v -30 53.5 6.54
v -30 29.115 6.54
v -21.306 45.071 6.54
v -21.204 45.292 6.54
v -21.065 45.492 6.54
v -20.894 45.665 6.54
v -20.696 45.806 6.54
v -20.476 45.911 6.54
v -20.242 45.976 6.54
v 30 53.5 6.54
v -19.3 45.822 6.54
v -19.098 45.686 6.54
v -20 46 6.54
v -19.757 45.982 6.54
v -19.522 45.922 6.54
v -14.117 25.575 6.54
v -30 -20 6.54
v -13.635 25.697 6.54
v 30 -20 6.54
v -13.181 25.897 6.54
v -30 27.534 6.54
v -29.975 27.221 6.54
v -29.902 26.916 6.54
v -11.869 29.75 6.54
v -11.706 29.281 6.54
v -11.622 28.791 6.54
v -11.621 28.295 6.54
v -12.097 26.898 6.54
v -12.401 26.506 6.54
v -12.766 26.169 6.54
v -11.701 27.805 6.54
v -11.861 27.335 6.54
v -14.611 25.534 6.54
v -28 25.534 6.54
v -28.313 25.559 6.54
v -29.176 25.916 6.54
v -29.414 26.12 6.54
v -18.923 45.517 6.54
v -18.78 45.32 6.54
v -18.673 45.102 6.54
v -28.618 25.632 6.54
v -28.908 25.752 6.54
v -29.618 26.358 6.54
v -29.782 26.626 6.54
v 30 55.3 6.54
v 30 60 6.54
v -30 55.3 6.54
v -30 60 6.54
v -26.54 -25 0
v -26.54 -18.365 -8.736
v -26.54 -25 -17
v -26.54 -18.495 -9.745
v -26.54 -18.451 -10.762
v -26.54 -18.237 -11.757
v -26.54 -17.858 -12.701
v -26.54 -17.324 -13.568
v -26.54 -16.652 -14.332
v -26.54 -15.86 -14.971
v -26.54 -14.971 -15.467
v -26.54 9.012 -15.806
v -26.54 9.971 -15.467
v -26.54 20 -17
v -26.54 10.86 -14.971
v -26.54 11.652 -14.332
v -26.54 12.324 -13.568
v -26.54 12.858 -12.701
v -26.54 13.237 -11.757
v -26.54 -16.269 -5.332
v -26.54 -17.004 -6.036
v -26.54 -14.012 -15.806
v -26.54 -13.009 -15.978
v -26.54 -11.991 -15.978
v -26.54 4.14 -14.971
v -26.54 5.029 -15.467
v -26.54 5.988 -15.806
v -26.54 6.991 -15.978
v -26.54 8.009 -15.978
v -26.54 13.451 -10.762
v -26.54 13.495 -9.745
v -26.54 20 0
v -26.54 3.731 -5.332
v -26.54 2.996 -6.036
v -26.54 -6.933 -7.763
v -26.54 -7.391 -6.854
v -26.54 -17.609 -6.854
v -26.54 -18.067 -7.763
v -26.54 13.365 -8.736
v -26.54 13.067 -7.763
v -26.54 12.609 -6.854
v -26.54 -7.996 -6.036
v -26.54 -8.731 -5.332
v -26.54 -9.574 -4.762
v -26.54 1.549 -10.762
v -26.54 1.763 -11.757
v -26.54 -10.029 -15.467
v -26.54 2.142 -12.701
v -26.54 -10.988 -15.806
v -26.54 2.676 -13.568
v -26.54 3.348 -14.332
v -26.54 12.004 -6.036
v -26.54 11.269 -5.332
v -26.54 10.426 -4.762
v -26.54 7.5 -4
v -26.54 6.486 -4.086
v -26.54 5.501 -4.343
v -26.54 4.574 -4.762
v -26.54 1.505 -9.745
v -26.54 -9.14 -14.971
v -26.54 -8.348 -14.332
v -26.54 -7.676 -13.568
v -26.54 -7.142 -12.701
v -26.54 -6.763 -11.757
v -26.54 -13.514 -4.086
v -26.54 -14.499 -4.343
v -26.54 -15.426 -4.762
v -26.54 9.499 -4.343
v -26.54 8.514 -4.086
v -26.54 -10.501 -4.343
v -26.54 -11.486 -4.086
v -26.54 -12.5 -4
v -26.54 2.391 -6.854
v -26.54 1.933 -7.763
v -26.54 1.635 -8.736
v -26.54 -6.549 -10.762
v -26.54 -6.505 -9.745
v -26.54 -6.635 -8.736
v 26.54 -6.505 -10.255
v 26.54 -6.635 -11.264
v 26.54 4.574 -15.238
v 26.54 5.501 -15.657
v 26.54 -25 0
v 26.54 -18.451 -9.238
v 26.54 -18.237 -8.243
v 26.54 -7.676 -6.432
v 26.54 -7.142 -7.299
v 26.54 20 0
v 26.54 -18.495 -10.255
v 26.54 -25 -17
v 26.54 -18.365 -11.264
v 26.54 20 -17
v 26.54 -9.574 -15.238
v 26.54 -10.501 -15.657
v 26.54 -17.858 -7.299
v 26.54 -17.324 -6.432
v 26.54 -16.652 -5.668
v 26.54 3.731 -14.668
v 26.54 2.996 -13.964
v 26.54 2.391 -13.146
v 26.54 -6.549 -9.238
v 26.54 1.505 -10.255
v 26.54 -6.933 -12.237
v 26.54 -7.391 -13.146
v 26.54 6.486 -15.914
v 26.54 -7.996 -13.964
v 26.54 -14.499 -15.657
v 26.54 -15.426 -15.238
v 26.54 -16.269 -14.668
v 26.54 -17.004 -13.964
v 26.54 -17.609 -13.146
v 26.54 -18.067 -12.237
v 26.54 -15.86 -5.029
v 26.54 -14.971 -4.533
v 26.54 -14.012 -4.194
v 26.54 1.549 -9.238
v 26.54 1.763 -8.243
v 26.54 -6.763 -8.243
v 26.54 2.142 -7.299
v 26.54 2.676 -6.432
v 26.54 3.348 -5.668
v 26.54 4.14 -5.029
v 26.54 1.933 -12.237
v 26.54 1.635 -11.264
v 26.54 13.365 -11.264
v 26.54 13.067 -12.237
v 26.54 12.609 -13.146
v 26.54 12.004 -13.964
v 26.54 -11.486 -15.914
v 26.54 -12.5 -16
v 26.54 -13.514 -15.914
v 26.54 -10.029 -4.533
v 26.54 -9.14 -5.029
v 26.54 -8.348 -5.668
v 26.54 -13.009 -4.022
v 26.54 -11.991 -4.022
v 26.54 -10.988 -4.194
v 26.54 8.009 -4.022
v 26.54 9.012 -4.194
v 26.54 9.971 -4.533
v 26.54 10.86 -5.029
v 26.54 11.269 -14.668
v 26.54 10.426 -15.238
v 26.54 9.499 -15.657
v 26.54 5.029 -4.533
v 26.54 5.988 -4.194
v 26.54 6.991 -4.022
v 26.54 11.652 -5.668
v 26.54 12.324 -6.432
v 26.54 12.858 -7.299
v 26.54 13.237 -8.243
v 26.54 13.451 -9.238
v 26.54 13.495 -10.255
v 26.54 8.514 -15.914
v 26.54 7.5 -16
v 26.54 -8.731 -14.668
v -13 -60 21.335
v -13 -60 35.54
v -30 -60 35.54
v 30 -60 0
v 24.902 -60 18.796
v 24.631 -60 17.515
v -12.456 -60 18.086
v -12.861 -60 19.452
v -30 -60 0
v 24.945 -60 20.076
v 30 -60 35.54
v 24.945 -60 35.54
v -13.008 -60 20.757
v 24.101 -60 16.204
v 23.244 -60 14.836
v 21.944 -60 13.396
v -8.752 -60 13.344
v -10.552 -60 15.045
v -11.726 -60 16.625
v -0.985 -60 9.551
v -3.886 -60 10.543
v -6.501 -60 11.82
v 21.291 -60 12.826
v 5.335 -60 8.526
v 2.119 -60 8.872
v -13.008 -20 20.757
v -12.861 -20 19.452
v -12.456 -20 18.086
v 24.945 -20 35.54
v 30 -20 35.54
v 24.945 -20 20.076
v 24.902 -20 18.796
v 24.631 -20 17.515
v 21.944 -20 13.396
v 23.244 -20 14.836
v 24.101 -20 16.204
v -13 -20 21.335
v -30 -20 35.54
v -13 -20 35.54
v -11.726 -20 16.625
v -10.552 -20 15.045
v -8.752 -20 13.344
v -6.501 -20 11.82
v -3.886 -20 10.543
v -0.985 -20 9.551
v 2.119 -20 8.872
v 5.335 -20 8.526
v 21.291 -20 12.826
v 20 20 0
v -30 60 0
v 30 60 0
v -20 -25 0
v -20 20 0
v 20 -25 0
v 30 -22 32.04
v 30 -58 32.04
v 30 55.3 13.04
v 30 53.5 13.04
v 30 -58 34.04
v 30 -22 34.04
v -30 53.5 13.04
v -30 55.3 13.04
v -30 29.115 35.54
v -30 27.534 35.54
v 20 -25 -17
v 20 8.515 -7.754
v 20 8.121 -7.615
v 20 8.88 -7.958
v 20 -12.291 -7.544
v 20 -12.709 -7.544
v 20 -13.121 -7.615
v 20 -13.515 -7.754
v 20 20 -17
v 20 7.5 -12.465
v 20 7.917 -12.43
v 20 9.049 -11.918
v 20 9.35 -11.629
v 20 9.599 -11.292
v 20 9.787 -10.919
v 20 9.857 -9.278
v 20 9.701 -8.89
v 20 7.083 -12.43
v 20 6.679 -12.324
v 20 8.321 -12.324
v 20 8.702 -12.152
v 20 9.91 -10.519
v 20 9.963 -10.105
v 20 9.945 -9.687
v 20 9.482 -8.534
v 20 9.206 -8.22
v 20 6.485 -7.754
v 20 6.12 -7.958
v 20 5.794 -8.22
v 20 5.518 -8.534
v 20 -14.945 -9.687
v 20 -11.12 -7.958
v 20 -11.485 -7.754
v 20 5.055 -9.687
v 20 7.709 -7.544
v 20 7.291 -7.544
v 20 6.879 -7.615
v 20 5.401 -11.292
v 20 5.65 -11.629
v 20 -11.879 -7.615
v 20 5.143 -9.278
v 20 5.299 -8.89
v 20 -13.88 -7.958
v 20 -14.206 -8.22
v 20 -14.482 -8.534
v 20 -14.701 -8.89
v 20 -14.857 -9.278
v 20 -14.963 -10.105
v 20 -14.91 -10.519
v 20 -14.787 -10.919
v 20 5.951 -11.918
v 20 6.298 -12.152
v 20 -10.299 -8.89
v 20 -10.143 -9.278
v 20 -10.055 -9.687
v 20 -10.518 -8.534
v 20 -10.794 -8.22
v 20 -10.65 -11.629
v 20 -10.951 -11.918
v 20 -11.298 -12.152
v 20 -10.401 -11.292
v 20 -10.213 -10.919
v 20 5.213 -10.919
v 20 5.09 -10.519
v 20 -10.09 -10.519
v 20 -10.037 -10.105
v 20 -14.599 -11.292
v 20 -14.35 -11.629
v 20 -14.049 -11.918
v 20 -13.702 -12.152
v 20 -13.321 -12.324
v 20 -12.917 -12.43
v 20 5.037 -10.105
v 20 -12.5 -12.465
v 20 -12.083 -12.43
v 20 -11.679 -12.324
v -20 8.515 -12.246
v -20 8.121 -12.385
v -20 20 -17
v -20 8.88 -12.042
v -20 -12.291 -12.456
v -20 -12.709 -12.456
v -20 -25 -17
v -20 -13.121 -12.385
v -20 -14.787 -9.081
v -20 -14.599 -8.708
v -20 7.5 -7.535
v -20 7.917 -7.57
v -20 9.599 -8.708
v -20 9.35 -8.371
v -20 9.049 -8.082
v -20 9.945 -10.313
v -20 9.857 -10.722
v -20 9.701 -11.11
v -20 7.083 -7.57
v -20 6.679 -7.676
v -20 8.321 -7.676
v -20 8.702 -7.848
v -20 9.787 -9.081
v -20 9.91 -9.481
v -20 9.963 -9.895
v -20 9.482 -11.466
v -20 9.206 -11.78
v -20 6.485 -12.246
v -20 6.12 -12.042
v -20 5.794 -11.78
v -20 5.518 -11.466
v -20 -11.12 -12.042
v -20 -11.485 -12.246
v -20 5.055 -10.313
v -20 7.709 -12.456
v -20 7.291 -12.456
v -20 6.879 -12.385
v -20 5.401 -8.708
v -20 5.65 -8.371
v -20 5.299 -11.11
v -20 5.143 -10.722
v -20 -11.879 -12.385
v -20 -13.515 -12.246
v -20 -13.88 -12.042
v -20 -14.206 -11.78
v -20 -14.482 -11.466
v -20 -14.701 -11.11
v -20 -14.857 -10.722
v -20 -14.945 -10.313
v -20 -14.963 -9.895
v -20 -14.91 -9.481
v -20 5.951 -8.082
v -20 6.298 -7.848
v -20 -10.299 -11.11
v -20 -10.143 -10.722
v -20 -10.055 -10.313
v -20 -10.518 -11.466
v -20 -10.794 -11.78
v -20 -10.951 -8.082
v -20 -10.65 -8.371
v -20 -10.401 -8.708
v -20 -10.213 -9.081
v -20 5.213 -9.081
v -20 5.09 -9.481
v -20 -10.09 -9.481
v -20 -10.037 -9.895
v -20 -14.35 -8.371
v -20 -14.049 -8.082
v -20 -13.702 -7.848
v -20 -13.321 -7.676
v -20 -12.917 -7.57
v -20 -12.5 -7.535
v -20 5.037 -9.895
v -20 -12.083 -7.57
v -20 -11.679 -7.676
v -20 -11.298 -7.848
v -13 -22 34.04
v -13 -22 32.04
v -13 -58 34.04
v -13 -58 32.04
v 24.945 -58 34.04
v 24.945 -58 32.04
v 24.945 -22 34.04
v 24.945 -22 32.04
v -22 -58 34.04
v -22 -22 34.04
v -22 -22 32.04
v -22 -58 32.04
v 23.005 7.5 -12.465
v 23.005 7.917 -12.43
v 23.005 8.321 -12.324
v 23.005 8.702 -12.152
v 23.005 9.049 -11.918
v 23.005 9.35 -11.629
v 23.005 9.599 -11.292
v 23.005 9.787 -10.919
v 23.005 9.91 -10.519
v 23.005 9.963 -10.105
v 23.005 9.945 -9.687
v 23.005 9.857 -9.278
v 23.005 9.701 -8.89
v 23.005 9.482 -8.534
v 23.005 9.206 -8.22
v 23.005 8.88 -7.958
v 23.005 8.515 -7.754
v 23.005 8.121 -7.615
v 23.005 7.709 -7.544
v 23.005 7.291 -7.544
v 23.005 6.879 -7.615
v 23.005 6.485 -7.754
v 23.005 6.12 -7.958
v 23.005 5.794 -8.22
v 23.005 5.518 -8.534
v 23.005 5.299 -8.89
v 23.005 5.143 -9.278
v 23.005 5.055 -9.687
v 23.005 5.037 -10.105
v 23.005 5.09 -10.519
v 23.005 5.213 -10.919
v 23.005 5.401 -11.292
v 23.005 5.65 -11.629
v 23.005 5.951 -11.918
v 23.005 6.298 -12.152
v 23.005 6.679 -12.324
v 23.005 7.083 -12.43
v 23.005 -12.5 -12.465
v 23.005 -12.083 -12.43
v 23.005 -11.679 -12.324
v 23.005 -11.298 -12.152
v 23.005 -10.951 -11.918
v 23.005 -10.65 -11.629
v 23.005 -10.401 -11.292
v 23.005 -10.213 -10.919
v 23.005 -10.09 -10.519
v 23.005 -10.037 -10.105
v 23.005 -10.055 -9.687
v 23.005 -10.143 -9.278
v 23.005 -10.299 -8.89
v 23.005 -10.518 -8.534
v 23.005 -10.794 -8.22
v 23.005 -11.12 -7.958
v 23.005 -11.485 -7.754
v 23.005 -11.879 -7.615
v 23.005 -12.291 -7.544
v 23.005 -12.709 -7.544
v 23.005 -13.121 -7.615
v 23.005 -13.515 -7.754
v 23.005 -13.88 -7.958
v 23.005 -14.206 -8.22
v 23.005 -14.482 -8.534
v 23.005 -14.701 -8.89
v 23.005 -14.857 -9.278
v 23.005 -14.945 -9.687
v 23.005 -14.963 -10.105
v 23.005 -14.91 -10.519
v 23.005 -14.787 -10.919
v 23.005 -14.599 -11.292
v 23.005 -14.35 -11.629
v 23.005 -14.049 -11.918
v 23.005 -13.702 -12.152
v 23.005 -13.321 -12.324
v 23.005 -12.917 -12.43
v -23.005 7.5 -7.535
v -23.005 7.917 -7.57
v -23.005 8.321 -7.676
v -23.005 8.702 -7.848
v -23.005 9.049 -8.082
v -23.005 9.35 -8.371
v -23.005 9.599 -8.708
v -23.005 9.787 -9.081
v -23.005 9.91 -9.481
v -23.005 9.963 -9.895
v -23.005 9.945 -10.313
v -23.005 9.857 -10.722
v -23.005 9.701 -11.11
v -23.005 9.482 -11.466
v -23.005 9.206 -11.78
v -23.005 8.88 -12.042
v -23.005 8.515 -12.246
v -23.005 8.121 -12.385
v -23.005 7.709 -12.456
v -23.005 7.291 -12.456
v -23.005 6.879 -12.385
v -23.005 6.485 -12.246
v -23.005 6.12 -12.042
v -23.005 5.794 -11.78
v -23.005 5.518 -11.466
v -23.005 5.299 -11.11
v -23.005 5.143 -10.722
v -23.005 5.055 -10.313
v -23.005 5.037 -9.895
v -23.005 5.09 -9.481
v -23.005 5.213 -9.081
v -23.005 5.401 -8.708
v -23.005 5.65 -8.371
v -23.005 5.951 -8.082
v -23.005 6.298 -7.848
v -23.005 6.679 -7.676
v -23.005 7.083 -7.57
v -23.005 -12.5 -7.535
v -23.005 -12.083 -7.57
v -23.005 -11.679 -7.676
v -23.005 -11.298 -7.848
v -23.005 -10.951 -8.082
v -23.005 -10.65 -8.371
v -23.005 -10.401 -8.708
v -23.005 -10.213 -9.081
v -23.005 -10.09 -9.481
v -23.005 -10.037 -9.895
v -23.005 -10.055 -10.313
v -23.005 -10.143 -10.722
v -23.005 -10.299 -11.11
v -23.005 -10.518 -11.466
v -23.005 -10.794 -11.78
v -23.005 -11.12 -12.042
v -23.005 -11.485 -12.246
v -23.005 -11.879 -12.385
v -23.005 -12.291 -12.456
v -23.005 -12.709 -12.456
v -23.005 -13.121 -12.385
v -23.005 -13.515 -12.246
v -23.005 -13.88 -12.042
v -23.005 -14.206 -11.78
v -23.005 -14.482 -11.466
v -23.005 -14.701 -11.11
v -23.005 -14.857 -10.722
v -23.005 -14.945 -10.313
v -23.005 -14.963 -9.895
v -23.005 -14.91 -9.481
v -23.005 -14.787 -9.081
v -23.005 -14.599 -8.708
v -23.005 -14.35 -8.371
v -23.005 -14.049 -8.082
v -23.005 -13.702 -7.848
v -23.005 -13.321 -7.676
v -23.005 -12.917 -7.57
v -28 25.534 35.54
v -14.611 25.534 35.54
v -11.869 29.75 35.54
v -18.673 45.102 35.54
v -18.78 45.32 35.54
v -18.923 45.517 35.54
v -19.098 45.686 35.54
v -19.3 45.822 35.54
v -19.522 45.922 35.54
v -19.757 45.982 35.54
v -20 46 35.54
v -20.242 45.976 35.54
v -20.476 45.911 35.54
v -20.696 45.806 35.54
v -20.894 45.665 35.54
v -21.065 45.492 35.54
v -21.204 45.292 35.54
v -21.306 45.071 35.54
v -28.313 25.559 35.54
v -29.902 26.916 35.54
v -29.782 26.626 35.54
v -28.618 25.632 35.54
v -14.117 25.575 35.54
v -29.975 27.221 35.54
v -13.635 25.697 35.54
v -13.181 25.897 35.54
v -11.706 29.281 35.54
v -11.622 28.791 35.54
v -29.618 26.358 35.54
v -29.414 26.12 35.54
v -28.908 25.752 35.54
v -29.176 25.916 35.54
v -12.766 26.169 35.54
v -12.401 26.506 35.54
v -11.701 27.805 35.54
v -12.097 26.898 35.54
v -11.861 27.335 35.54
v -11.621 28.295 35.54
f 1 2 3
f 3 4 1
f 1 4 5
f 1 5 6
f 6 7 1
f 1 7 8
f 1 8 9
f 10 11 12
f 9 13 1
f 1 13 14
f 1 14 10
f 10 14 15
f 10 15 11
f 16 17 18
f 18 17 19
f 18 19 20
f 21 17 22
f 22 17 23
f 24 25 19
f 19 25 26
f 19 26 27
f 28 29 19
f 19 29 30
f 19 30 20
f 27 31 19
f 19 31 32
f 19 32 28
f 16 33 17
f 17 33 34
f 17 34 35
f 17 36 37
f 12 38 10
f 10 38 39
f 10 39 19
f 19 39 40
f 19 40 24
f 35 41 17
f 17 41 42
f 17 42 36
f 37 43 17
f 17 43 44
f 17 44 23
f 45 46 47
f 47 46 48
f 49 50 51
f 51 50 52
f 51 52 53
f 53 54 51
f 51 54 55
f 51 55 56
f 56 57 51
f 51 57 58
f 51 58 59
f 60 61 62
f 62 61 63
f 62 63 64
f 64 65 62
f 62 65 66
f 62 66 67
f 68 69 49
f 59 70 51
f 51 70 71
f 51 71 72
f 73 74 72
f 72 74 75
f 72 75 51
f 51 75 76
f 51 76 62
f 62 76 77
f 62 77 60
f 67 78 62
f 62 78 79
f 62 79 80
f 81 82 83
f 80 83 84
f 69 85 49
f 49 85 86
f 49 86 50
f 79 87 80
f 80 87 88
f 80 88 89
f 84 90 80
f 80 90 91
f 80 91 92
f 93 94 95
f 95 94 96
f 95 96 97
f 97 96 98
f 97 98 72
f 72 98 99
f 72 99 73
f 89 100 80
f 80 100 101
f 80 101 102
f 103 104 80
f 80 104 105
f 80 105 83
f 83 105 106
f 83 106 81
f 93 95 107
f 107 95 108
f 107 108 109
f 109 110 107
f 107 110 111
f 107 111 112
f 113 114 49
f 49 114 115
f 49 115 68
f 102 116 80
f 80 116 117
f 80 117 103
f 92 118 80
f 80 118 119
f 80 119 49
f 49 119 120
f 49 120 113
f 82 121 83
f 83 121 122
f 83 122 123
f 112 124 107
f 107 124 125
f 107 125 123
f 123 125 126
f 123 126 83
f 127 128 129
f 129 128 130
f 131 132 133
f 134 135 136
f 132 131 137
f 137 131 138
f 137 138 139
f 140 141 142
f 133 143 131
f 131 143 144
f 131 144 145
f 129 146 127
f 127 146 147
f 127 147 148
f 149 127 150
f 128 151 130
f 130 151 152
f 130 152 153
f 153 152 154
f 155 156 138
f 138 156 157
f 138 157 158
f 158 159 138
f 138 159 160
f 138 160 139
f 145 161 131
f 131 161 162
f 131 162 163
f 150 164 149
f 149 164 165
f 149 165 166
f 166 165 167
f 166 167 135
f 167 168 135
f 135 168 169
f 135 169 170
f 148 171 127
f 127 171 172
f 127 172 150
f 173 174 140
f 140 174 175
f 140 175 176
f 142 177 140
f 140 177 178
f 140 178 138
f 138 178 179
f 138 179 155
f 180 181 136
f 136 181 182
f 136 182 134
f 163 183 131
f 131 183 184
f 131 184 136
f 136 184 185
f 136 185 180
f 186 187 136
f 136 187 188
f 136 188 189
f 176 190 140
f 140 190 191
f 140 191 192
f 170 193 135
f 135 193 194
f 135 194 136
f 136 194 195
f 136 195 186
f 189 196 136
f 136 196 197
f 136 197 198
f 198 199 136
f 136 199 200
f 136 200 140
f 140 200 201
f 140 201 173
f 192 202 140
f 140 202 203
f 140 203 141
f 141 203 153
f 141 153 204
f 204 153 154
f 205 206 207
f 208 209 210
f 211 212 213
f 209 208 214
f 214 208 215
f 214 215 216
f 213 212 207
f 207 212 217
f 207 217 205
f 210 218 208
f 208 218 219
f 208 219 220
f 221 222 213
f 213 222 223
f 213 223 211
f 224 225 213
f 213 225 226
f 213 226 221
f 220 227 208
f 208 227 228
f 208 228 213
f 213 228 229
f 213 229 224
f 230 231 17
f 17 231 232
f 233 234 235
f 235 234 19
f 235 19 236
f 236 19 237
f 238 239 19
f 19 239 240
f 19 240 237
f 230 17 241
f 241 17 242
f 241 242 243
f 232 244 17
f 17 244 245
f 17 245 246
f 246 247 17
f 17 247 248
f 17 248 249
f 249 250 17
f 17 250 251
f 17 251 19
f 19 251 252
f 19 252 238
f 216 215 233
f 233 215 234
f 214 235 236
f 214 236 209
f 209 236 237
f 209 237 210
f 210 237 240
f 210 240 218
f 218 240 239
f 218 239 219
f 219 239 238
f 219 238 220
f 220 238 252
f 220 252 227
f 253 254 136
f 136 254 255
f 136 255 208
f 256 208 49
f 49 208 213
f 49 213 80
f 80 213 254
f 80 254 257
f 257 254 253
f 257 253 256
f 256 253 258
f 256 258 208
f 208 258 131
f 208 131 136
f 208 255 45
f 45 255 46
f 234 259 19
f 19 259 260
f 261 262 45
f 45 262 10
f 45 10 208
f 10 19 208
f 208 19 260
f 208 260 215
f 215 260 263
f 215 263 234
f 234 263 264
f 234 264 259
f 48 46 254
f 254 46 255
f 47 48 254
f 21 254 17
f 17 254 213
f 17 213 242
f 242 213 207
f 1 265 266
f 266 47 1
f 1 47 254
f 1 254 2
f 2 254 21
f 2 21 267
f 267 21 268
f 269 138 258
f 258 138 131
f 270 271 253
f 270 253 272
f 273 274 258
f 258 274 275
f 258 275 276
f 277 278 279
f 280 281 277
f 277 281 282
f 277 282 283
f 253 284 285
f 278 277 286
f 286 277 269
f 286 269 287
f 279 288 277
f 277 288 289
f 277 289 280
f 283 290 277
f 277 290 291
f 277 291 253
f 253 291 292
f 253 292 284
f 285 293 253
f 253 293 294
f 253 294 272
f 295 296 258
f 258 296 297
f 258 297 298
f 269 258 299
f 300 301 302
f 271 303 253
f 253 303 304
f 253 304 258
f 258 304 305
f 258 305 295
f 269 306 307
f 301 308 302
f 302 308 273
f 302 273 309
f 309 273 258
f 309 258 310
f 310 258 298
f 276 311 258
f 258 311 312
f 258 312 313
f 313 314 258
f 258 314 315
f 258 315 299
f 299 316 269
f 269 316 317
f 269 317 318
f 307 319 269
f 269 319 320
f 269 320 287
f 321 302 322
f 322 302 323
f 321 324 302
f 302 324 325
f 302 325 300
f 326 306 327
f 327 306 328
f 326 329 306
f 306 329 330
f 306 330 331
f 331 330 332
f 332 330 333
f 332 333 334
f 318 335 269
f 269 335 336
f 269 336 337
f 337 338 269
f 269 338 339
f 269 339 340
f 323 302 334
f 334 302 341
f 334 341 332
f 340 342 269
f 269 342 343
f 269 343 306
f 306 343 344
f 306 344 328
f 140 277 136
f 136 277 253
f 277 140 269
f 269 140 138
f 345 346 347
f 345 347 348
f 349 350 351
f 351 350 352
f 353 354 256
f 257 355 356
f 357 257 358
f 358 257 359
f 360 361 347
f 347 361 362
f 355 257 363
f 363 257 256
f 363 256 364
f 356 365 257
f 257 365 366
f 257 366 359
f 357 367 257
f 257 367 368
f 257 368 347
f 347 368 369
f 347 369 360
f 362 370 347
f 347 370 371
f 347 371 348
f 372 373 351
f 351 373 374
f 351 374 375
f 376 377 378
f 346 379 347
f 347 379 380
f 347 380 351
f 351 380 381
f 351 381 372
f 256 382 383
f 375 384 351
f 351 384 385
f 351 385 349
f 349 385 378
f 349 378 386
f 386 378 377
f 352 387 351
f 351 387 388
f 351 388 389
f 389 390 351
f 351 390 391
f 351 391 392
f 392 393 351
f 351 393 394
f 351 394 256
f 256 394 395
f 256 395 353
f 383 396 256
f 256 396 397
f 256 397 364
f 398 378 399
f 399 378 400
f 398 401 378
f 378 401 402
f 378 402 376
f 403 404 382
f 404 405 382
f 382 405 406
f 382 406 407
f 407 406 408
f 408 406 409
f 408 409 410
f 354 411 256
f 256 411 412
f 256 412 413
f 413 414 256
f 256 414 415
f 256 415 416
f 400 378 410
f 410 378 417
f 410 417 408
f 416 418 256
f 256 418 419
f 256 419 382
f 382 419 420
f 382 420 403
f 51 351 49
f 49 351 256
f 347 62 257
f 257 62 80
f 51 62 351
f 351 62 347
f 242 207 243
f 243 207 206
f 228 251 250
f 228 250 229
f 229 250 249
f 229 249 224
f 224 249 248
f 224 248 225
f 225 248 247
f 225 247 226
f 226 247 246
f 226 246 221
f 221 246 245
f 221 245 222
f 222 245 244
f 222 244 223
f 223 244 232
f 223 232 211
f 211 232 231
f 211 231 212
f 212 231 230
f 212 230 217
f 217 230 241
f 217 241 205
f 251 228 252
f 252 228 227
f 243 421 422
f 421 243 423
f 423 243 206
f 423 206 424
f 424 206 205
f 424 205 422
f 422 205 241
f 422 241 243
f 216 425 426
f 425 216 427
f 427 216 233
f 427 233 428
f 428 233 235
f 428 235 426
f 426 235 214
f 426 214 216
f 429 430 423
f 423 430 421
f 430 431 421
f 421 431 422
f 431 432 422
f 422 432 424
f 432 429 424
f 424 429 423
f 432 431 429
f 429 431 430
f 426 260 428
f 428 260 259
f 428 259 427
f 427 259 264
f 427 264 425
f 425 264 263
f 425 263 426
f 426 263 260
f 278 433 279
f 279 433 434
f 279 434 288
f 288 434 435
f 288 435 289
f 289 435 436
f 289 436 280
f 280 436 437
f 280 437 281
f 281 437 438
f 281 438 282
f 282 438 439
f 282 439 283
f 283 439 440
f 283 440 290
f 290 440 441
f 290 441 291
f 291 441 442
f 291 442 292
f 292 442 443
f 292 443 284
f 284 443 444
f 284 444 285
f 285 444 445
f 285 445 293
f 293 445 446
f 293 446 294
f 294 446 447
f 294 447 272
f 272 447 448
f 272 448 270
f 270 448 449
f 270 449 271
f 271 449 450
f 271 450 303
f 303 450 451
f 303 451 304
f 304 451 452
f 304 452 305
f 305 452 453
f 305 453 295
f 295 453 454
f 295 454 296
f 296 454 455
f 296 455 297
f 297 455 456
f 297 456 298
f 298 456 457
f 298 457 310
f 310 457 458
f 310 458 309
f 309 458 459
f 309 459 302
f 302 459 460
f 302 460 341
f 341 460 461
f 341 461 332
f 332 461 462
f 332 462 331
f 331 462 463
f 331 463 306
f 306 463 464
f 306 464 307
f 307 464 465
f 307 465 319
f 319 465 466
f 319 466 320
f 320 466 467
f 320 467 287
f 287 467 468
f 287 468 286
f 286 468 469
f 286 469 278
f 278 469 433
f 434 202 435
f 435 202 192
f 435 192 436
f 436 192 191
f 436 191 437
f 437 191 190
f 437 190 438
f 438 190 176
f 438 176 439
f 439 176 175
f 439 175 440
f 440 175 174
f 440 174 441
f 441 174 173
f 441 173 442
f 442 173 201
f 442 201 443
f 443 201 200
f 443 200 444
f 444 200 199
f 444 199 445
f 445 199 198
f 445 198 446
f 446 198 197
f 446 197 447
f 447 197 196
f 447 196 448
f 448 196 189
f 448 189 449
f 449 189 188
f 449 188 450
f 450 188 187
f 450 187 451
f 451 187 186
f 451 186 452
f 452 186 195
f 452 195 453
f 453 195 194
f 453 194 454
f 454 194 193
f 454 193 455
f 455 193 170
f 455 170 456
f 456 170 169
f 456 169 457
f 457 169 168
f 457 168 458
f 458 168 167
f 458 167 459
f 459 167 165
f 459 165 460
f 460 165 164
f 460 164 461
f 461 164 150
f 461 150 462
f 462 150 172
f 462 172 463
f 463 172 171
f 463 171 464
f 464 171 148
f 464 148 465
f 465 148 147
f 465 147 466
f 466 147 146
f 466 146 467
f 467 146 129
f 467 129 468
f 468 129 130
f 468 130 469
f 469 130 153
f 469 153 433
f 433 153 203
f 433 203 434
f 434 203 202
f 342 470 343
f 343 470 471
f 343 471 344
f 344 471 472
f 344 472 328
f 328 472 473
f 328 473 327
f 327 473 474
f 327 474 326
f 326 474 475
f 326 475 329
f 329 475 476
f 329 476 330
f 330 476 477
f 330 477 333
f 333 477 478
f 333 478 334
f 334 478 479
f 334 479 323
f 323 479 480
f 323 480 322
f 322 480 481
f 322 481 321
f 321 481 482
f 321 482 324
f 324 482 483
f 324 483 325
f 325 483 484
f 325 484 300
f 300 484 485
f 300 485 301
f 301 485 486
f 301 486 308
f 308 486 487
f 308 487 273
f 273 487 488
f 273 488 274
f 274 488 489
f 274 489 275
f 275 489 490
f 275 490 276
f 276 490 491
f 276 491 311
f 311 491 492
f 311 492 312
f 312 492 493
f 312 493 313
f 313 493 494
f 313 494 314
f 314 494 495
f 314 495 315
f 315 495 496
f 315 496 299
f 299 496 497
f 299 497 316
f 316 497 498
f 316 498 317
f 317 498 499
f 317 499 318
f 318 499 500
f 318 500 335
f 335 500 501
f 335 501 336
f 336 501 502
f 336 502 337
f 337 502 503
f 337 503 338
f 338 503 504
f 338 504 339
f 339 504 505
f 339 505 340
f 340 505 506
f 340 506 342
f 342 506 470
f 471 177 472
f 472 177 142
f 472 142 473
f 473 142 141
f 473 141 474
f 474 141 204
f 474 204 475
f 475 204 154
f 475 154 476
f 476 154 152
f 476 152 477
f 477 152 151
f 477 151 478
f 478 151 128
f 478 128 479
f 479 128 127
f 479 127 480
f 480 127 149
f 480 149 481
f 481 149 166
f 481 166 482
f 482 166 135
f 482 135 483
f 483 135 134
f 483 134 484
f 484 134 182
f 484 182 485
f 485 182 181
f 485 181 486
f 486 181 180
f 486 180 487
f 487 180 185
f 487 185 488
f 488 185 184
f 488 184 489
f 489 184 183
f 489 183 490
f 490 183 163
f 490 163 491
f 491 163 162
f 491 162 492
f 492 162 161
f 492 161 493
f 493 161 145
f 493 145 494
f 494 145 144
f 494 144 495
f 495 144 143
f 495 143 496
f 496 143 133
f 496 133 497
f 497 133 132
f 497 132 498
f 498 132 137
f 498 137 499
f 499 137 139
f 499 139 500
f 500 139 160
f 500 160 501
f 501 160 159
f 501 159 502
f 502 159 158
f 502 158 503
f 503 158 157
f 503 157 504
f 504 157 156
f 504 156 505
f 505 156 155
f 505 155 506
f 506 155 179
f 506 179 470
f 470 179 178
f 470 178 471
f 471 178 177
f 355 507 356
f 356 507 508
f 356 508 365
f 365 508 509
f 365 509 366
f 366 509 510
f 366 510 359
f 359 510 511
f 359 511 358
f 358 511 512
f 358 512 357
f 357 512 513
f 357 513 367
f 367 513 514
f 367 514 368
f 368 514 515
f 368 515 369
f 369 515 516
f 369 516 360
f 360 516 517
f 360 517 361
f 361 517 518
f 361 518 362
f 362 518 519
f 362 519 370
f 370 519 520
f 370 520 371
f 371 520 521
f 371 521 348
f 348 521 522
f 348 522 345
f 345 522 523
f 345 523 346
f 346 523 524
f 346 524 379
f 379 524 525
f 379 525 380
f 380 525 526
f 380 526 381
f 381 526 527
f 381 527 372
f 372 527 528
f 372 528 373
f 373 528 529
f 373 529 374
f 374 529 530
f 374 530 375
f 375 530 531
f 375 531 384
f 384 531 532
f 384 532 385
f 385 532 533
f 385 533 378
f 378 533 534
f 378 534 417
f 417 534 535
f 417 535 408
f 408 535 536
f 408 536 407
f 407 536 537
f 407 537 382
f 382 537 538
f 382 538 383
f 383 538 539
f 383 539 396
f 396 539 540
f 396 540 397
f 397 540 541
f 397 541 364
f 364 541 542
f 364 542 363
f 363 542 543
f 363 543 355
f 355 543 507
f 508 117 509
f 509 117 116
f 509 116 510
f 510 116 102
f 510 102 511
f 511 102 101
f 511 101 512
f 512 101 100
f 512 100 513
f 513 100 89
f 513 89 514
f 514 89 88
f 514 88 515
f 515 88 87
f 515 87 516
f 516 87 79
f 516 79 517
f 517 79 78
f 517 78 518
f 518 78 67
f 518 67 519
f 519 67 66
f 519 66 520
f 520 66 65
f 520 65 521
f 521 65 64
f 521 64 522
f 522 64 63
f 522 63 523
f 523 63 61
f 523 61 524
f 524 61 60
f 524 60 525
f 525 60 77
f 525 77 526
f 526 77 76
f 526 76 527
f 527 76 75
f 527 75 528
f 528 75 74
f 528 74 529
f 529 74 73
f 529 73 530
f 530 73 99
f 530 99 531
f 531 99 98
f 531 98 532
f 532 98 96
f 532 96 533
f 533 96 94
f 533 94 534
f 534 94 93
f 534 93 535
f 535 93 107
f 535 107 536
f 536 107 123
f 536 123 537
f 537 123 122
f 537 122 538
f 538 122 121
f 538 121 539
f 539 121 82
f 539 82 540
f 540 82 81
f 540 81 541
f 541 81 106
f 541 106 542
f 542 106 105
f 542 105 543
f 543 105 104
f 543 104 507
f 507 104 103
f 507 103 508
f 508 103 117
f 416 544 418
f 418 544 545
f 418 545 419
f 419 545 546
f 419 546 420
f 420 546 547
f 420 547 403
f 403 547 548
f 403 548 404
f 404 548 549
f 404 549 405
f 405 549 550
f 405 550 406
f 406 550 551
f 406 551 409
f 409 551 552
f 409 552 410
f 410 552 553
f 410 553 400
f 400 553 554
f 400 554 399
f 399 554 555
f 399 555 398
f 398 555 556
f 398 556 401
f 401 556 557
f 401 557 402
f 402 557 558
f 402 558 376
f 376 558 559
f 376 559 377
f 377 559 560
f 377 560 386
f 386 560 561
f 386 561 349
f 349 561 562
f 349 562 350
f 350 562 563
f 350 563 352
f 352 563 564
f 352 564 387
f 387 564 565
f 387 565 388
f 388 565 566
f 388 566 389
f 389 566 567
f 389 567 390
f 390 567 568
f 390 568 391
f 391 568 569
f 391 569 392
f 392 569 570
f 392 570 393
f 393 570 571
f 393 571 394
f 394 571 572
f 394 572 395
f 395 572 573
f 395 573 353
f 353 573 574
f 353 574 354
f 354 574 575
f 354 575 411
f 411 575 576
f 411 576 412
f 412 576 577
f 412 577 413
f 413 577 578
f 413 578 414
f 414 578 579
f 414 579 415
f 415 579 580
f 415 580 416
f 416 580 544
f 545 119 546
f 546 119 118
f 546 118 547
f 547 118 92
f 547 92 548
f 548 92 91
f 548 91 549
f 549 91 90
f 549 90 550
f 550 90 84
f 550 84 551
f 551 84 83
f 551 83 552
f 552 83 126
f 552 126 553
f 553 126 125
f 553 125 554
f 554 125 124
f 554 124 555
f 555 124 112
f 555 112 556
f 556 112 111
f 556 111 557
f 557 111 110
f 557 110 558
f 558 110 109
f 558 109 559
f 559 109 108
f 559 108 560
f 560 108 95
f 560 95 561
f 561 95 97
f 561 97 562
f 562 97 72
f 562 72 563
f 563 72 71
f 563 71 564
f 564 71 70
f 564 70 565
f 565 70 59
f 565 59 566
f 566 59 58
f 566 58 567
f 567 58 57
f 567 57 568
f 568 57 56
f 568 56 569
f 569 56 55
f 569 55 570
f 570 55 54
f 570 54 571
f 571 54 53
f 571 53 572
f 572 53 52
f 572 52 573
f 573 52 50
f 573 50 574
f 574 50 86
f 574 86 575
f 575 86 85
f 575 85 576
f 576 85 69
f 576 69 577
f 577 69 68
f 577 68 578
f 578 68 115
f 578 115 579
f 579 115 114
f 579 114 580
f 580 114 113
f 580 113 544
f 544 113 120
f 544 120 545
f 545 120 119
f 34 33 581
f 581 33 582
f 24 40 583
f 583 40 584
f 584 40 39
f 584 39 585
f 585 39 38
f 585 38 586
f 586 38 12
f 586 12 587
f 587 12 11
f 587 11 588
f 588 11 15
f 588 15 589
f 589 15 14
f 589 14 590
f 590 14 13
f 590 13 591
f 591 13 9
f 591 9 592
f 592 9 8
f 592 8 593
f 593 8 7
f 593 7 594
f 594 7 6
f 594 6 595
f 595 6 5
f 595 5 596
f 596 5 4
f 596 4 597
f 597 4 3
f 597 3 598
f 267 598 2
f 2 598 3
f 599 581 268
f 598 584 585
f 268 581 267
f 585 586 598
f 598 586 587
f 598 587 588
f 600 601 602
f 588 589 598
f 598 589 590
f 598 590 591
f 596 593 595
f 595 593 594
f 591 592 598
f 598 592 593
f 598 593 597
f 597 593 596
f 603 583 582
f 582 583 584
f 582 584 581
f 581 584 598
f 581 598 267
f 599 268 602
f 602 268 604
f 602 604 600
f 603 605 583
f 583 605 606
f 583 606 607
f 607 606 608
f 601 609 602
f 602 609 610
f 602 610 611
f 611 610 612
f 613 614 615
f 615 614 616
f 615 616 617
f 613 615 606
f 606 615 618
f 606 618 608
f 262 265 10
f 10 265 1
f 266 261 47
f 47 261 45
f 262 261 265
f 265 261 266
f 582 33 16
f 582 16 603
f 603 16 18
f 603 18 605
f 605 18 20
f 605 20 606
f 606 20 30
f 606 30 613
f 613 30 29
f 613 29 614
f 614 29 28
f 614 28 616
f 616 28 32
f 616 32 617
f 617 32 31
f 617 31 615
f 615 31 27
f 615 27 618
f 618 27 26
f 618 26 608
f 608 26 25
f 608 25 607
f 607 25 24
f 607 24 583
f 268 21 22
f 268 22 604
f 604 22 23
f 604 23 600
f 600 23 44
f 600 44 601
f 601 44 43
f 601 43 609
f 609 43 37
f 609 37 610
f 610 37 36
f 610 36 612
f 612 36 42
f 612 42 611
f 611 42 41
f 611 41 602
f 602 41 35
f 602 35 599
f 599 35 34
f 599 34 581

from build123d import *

# Parameters (mm, degrees)
SKETCH1_W                                       = 60
SKETCH1_H                                       = 120
BOSS_EXTRUDE1_DEPTH                             = 6.54
SKETCH10_W                                      = 6.54
SKETCH10_H                                      = 45
BOSS_EXTRUDE5_DEPTH                             = 17
SKETCH17_W                                      = 60
SKETCH17_H                                      = 40
BOSS_EXTRUDE6_DEPTH                             = 29
CUT_EXTRUDE1_REACH                              = 42
CUT_EXTRUDE2_REACH                              = 54.54
SKETCH21_W                                      = 37.9445377
SKETCH21_H                                      = 40
SKETCH23_W                                      = 2
SKETCH23_H                                      = 36
CUT_EXTRUDE3_DEPTH                              = 9
SKETCH24_W                                      = 2
SKETCH24_H                                      = 36
CUT_EXTRUDE4_DEPTH                              = 9
CSK_FOR_M3_FLAT_HEAD_MACHINE_SCREW4_D           = 4.93
CSK_FOR_M3_FLAT_HEAD_MACHINE_SCREW4_DEPTH       = 6.54
CSK_FOR_M3_FLAT_HEAD_MACHINE_SCREW4_CSINK_D     = 12
CSK_FOR_M3_FLAT_HEAD_MACHINE_SCREW4_CSINK_ANGLE = 90
CSK_FOR_M3_FLAT_HEAD_MACHINE_SCREW5_D           = 4.93
CSK_FOR_M3_FLAT_HEAD_MACHINE_SCREW5_DEPTH       = 6.54
CSK_FOR_M3_FLAT_HEAD_MACHINE_SCREW5_CSINK_D     = 12
CSK_FOR_M3_FLAT_HEAD_MACHINE_SCREW5_CSINK_ANGLE = 90
BOSS_EXTRUDE8_DEPTH                             = 29
SKETCH36_W                                      = 60
SKETCH36_H                                      = 1.8
BOSS_EXTRUDE9_DEPTH                             = 6.5
FILLET1_R                                       = 3
FILLET2_R                                       = 2


with BuildPart() as part:
    # Sketch1 → Boss-Extrude1 (new body)
    with BuildSketch(Plane.XY):
        Rectangle(SKETCH1_W, SKETCH1_H)
    extrude(amount=BOSS_EXTRUDE1_DEPTH)

    # Sketch10 → Boss-Extrude5 (add)
    with BuildSketch(Plane(origin=(0, 0, 0), x_dir=(-1, 0, 0), z_dir=(0, 0, -1))):
        with Locations((23.27, -2.5)):
            Rectangle(SKETCH10_W, SKETCH10_H)
        with Locations((-23.27, -2.5)):
            Rectangle(SKETCH10_W, SKETCH10_H)
    extrude(amount=BOSS_EXTRUDE5_DEPTH)

    # Sketch17 → Boss-Extrude6 (add)
    with BuildSketch(Plane.XY.offset(6.54)):
        with Locations((0, -40)):
            Rectangle(SKETCH17_W, SKETCH17_H)
    extrude(amount=BOSS_EXTRUDE6_DEPTH)

    # Sketch18 → Cut-Extrude1 (cut, up to next)
    with BuildSketch(Plane(origin=(0, -20, 0), x_dir=(1, 0, 0), z_dir=(0, 1, 0)), mode=Mode.PRIVATE) as cut_extrude1_sk1:
        with BuildLine():
            Line((5.334966353, -8.526396136), (21.291300905, -12.825812438))
            add(Edge.make_bspline(
                [(5.334966353, -8.526396136), (-17.854714365, -9.780670981), (-12.49786254, -23.648890313), (-7.141010715, -37.517109645), (13.926544327, -30.768916863), (34.994099369, -24.020724082), (21.291300905, -12.825812438)],
                knots=[1.570796327, 1.570796327, 1.570796327, 3.340987112, 3.340987112, 5.111177898, 5.111177898, 6.881368684, 6.881368684, 6.881368684], degree=2, weights=[1, 0.633215673, 1, 0.633215673, 1, 0.633215673, 1]))
        make_face()
    cut_extrude1_tool1 = extrude(cut_extrude1_sk1.sketch, amount=-CUT_EXTRUDE1_REACH, mode=Mode.PRIVATE) & part.part
    add(cut_extrude1_tool1.solids().sort_by_distance((5.792514, -20, 20.554542))[0], mode=Mode.SUBTRACT)

    # Sketch21 → Cut-Extrude2 (cut, up to next)
    with BuildSketch(Plane.XY.offset(35.54), mode=Mode.PRIVATE) as cut_extrude2_sk1:
        with Locations((5.97226885, -40)):
            Rectangle(SKETCH21_W, SKETCH21_H)
    cut_extrude2_tool1 = extrude(cut_extrude2_sk1.sketch, amount=-CUT_EXTRUDE2_REACH, mode=Mode.PRIVATE) & part.part
    add(cut_extrude2_tool1.solids().sort_by_distance((5.972269, -40, 35.54))[0], mode=Mode.SUBTRACT)

    # Sketch23 → Cut-Extrude3 (cut)
    with BuildSketch(Plane(origin=(-13, 0, 0), x_dir=(0, 0, -1), z_dir=(1, 0, 0))):
        with Locations((-33.04, -40)):
            Rectangle(SKETCH23_W, SKETCH23_H)
    extrude(amount=-CUT_EXTRUDE3_DEPTH, mode=Mode.SUBTRACT)

    # Sketch24 → Cut-Extrude4 (cut)
    with BuildSketch(Plane.ZY.offset(-24.9445377)):
        with Locations((33.04, -40)):
            Rectangle(SKETCH24_W, SKETCH24_H)
    extrude(amount=-CUT_EXTRUDE4_DEPTH, mode=Mode.SUBTRACT)

    # CSK for M3 Flat Head Machine Screw4
    with Locations(Plane(origin=(26.54, -12.5, -10), x_dir=(0, 1, 0), z_dir=(1, 0, 0))):
        with Locations((0, 0), (20, 0)):
            CounterSinkHole(CSK_FOR_M3_FLAT_HEAD_MACHINE_SCREW4_D / 2, CSK_FOR_M3_FLAT_HEAD_MACHINE_SCREW4_CSINK_D / 2, depth=CSK_FOR_M3_FLAT_HEAD_MACHINE_SCREW4_DEPTH, counter_sink_angle=CSK_FOR_M3_FLAT_HEAD_MACHINE_SCREW4_CSINK_ANGLE)

    # CSK for M3 Flat Head Machine Screw5
    with Locations(Plane(origin=(-26.54, -12.5, -10), x_dir=(0, -1, 0), z_dir=(-1, 0, 0))):
        with Locations((0, 0), (-20, 0)):
            CounterSinkHole(CSK_FOR_M3_FLAT_HEAD_MACHINE_SCREW5_D / 2, CSK_FOR_M3_FLAT_HEAD_MACHINE_SCREW5_CSINK_D / 2, depth=CSK_FOR_M3_FLAT_HEAD_MACHINE_SCREW5_DEPTH, counter_sink_angle=CSK_FOR_M3_FLAT_HEAD_MACHINE_SCREW5_CSINK_ANGLE)

    # Sketch7 → Boss-Extrude8 (add)
    with BuildSketch(Plane.XY.offset(6.54)):
        with BuildLine():
            Line((-10, 25.533918981), (-18.67330273, 45.101562584))
            ThreePointArc((-18.67330273, 45.101562584), (-20, 46), (-21.305734932, 45.071360283))
            Line((-21.305734932, 45.071360283), (-30, 29.115374119))
            Line((-30, 29.115374119), (-30, 25.533918981))
            Line((-30, 25.533918981), (-10, 25.533918981))
        make_face()
    extrude(amount=BOSS_EXTRUDE8_DEPTH)

    # Sketch36 → Boss-Extrude9 (add)
    with BuildSketch(Plane.XY.offset(6.54)):
        with Locations((0, 54.4)):
            Rectangle(SKETCH36_W, SKETCH36_H)
    extrude(amount=BOSS_EXTRUDE9_DEPTH)

    # Fillet1
    fillet1_edges = [part.edges().sort_by_distance(p)[0] for p in [
        (-10, 25.533918981, 21.04),
    ]]
    fillet(fillet1_edges, radius=FILLET1_R)

    # Fillet2
    fillet2_edges = [part.edges().sort_by_distance(p)[0] for p in [
        (-30, 25.533918981, 21.04),
    ]]
    fillet(fillet2_edges, radius=FILLET2_R)


solid = part.part
